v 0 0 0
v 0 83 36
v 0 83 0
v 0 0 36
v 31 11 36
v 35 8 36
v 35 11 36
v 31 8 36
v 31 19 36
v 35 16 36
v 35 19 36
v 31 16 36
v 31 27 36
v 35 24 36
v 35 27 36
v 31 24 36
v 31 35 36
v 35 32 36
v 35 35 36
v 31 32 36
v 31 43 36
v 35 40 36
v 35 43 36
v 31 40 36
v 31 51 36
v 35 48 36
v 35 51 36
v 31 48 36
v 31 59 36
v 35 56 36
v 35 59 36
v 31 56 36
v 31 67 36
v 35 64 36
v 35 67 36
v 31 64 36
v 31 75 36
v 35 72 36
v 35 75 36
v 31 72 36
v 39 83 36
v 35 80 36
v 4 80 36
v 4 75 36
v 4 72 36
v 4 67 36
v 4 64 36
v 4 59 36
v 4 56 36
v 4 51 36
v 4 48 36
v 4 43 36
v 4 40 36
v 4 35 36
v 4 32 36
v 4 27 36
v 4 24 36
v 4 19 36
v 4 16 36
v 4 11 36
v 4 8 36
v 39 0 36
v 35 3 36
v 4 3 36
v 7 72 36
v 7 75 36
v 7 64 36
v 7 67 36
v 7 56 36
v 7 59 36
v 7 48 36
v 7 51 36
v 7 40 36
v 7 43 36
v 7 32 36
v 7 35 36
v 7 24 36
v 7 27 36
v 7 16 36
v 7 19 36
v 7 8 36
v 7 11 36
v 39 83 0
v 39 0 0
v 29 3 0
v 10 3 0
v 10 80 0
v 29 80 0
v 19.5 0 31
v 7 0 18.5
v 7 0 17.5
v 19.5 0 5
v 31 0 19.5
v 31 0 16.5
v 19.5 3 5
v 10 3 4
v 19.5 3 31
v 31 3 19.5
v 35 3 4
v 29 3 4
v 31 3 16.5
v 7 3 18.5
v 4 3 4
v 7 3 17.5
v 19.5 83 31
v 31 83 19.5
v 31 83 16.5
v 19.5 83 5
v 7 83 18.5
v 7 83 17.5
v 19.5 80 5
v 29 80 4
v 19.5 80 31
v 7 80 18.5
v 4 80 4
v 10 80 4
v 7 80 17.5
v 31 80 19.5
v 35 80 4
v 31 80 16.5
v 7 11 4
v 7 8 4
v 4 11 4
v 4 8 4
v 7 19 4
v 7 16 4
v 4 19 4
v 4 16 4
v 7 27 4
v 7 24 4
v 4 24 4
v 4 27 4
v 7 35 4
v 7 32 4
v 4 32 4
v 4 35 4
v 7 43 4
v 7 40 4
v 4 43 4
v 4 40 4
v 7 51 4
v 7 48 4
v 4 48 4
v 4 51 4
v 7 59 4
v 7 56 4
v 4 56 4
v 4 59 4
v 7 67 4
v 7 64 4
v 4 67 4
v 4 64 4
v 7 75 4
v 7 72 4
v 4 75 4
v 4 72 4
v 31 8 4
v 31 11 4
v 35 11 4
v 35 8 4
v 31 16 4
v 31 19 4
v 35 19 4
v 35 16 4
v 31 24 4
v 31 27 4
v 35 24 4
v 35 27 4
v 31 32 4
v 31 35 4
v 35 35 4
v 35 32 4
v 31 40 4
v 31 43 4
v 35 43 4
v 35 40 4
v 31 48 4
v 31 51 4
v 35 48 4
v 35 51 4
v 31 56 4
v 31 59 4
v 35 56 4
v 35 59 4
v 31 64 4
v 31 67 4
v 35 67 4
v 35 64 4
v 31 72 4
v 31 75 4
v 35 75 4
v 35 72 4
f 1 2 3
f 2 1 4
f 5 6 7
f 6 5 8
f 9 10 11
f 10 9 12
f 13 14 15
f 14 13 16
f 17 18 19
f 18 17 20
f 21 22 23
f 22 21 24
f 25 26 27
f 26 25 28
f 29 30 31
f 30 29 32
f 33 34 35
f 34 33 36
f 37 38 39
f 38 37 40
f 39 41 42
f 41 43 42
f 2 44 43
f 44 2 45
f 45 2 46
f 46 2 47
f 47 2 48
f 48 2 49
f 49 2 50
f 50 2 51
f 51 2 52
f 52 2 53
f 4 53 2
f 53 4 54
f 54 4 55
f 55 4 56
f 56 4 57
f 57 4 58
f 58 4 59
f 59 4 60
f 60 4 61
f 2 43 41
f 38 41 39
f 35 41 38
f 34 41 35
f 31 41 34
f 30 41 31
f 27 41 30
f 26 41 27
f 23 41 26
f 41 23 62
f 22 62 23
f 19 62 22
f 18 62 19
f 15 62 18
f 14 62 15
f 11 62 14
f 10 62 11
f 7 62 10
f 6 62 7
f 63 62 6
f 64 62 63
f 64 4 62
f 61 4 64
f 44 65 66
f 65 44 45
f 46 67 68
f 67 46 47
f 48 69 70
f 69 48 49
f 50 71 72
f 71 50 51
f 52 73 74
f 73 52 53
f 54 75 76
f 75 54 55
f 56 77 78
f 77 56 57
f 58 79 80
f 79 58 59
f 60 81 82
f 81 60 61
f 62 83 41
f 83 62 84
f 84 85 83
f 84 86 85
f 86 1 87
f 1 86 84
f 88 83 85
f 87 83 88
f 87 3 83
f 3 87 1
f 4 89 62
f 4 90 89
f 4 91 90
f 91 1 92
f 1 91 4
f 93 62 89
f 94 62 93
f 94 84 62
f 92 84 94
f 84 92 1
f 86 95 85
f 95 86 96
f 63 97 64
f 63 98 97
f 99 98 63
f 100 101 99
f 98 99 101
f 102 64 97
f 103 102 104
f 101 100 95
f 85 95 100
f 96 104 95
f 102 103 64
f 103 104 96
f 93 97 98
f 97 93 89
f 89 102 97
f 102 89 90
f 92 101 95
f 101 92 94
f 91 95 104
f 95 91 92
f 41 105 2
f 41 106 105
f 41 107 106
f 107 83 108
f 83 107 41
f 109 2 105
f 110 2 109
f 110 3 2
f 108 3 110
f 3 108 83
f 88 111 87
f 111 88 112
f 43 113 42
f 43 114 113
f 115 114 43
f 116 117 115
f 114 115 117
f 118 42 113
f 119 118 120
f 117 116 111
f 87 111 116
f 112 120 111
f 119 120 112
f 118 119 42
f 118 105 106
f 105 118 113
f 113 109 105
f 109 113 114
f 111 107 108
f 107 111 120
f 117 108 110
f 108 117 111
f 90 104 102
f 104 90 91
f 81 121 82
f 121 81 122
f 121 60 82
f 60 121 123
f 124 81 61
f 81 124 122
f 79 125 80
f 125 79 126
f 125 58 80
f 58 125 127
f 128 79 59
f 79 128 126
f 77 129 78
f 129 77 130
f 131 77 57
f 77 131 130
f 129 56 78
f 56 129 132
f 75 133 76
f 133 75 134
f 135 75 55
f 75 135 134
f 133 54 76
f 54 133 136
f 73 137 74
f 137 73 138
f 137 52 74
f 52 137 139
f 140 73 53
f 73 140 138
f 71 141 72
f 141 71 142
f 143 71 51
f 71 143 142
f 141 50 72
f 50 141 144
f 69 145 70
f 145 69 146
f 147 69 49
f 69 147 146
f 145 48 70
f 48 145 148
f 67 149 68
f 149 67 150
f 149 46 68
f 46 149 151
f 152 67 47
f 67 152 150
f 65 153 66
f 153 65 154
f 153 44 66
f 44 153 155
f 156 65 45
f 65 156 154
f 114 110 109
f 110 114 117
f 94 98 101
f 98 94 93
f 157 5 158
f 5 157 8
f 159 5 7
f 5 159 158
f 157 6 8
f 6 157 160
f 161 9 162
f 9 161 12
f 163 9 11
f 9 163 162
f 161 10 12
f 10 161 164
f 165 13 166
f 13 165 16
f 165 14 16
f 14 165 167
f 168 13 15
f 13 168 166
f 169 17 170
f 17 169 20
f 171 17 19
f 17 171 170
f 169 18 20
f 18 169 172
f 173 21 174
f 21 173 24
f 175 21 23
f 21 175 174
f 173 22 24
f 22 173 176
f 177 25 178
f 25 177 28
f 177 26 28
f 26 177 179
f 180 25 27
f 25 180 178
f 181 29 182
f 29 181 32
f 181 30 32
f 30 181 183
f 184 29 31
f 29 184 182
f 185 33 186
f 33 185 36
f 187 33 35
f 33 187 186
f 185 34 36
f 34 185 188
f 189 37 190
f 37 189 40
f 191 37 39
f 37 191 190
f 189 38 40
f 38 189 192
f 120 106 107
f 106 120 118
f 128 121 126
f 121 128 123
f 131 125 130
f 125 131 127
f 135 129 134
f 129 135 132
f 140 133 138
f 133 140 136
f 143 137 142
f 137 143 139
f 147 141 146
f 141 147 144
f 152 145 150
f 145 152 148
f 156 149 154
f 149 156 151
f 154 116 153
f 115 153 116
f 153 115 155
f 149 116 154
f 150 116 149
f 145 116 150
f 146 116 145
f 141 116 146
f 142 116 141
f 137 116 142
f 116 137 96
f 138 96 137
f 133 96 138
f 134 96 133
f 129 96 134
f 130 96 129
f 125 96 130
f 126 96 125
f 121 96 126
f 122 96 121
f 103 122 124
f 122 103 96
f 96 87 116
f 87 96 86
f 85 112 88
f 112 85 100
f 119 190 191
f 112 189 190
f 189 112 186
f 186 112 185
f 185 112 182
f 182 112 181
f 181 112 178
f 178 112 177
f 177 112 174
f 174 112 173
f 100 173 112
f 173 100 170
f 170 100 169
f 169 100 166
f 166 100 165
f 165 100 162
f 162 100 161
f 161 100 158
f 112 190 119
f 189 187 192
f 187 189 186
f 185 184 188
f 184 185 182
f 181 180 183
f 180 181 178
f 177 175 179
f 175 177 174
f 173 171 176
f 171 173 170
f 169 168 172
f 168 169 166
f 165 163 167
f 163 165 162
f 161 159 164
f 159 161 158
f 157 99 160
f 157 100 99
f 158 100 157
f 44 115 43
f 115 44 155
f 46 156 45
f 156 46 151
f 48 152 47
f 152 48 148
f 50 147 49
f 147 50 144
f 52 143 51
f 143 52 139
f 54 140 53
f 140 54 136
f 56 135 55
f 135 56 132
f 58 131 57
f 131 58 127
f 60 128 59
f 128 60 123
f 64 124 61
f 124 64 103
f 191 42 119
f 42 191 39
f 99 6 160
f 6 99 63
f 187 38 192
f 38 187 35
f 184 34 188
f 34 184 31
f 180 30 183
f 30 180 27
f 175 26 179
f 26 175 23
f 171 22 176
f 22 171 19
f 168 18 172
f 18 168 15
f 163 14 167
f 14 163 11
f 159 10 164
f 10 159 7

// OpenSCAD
//características del vidrio
ladovidrio = 30;
grosorvidrio = 4;

//Longitud del rack depende del número de muestas que selecciones aquí:

numerodemuestras =10;

//rack
grosorparedes = 4;
longitudrack = numerodemuestras*(3+grosorvidrio+1)+3;
alturarack =32 + grosorparedes;




/////RACK
module rack()
{




//unir los lados

 difference()
 {   
cube([grosorparedes+ladovidrio+5,3,alturarack]);


translate([(grosorparedes+ladovidrio+5)/2,15,alturarack/2])
        rotate([90,0,0])
cylinder(r=13,h=40,$fn=4);
 }   
   


difference()
{ 
translate([0,longitudrack-3,0])
cube([grosorparedes+ladovidrio+5,3,alturarack]);

translate([(grosorparedes+ladovidrio+5)/2,500,alturarack/2])
        rotate([90,0,0])
cylinder(r=13,h=1000,$fn=4);
} 


//separador entre dispositivos
module separador(distancia=0)
{
    translate([0,distancia,0])
    cube([grosorparedes+3,3,alturarack]);
}
    i=0;
for (i = [0:numerodemuestras])
    {
    separador(distancia= i*(3+grosorvidrio+1));
    }
translate([ladovidrio+1,0,0])
for (i = [0:numerodemuestras])
    {
    separador(distancia= i*(3+grosorvidrio+1));
    }




//fondo
cube ([10,longitudrack,grosorparedes]);
translate([ladovidrio+grosorparedes*2+1-10,0,0])
cube ([10,longitudrack,grosorparedes]);


//laterales
cube([grosorparedes,longitudrack,alturarack]);
translate([ladovidrio+grosorparedes+1,0,0])
cube([grosorparedes,longitudrack,alturarack]);
    
    
    
    //estructura central
    module central()
{
    
    if (numerodemuestras > 10)
    {
        translate([0,(longitudrack-3)/2,0])
        cube([grosorparedes+ladovidrio+5,3,grosorparedes]);
        
        
translate([0,0,alturarack-4])
        translate([0,(longitudrack-3)/2,0])
cube([grosorparedes+ladovidrio+5,3,grosorparedes]);
        
        
        
       translate([0,(longitudrack-3)/2,0]) 
      translate ([5,0,0])
rotate ([0,-47,0])
cube([grosorparedes+ladovidrio+5+5,3,grosorparedes]);  
        
        
  translate([0,(longitudrack-3)/2,0])       
  translate([ladovidrio+grosorparedes+2,3-grosorvidrio+1,3])
    rotate([0,-133,0])
    cube([grosorparedes+ladovidrio+5+5,3,grosorparedes]);     
    }
}



if (numerodemuestras > 10)
{
central();
}
 }       
 




rack(); 
        
        
        
        
        
        
        
